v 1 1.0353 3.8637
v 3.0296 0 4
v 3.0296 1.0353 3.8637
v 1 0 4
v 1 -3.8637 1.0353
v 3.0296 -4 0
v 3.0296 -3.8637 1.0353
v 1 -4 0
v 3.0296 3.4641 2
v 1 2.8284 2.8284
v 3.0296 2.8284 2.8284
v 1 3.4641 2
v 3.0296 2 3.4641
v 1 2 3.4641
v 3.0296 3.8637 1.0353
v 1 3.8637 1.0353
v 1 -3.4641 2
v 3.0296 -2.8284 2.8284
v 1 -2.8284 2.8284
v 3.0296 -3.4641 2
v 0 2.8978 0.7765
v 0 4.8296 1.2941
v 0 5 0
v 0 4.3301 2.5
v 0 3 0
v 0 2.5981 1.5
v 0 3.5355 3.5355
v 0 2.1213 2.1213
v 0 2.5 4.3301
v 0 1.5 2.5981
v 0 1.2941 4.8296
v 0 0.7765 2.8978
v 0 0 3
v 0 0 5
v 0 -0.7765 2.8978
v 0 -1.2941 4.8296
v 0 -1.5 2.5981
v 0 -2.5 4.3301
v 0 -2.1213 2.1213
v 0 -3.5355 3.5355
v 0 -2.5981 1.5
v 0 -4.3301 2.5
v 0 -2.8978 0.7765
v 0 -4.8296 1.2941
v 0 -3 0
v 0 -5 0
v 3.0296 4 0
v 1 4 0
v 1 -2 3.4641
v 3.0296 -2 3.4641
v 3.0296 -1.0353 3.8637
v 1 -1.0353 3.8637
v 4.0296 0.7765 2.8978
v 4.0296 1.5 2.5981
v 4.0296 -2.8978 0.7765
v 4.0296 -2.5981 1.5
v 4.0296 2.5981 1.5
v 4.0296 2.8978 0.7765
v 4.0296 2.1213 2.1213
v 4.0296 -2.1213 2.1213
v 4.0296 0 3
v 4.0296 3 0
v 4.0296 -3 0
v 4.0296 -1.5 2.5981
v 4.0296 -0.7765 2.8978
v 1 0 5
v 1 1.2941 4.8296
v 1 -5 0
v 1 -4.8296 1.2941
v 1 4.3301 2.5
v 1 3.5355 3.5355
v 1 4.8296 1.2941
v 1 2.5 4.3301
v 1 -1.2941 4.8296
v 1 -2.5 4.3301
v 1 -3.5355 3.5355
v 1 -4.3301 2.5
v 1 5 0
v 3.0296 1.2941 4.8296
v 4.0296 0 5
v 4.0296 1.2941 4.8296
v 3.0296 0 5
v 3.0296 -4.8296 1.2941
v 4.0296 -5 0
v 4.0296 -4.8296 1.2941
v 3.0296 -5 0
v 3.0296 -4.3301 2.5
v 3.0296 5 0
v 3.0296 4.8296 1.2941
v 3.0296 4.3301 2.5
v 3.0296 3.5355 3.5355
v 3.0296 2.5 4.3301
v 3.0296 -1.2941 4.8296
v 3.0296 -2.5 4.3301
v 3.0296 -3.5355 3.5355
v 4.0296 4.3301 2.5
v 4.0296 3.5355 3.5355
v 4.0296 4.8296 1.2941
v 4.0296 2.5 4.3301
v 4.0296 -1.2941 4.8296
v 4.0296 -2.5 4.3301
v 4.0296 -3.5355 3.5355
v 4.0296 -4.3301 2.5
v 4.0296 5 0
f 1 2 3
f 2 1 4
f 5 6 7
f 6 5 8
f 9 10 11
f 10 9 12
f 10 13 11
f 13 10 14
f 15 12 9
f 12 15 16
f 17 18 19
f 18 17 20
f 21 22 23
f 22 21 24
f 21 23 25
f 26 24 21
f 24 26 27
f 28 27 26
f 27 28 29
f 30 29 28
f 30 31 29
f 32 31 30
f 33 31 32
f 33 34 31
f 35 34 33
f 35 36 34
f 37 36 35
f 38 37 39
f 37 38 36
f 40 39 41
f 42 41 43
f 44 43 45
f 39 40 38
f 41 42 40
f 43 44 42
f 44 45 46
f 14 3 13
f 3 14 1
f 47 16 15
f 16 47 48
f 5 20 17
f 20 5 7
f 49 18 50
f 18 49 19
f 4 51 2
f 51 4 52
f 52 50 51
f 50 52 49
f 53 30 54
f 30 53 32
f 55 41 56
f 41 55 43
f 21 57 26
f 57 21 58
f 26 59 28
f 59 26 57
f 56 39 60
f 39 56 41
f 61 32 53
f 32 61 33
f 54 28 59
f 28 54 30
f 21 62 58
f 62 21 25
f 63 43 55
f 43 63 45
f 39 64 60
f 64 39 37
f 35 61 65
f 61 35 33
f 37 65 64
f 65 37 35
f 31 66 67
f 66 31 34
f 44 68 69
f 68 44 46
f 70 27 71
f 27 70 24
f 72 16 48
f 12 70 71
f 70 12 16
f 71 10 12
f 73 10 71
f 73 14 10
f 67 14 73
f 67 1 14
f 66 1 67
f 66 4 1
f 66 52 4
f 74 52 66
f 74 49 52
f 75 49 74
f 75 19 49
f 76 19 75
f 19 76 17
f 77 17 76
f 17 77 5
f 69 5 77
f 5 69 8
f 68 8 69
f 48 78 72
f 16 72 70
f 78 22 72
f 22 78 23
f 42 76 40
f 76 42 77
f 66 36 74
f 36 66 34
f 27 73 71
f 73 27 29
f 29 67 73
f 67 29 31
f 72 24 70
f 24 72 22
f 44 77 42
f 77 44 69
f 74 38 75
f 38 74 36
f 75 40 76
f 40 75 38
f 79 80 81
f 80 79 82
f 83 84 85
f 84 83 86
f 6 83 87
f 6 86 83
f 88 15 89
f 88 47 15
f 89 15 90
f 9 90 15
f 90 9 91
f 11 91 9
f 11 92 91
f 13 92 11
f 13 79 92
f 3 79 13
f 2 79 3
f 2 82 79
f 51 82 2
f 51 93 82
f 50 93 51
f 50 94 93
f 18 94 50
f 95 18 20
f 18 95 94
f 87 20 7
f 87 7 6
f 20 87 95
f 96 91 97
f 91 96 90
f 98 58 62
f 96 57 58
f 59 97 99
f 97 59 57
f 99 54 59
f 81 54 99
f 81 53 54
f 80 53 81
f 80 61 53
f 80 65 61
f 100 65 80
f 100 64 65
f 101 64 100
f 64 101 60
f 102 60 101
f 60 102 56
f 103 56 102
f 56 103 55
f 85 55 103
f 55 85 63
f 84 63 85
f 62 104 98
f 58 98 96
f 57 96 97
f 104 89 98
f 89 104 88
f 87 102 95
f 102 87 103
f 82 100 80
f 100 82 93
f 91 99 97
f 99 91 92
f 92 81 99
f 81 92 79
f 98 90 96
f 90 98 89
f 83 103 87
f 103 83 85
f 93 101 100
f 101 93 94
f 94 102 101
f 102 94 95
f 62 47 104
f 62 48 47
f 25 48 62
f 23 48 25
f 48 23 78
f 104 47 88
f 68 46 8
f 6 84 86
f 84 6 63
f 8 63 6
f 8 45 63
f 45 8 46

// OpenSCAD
// file: ../build_environments.scad
// build_environments.scad: modules to build level sections
//

module pool(diameter=10.0, wall_height=2.0, step_width=3.0, connections=[])
{
    difference() {
        union() {
        difference() {
            cylinder(h=0.5,r1=diameter+step_width,r2=diameter+step_width,$fn=48);
            translate([0,0,-0.1])
                cylinder(h=0.7,r1=diameter,r2=diameter,$fn=48);
        }
        difference() {
            cylinder(h=wall_height,r1=diameter+step_width+1.0,r2=diameter+step_width+1.0,$fn=48);
            translate([0,0,-0.1])
                cylinder(h=wall_height+0.2,r1=diameter+step_width,r2=diameter+step_width,$fn=48);
        }
        }
    
        for (c = connections)
        {
            rotate([0,90,0]) {
                angle = atan2(c[1],c[0]);
                rotate([-angle,0,0]) {
                    cylinder(h=diameter+5.0,r1=c[2],r2=c[2],$fn=48);
                }
            }
        }
    }
}

module straight(length=10.0, width=2.0, dy1=0.0, dy2=0.0, dz=0.0)
{
    dims = [0, 0, 0, 0, 0, (dz/length)];
    matrix = [
        [ 1, dims[0], dims[1], 0 ],
        [ dims[2], 1, dims[4], 0 ],
        [ dims[5], dims[3], 1, 0 ],
        [ 0, 0, 0, 1 ]
    ];
    multmatrix(matrix)
    difference() {
        translate([dy1,0,0])
        union() {
            rotate([0,90,0]) {
                difference() {
                    cylinder(h=(length-dy1-dy2),r1=width+1.0,r2=width+1.0,$fn=24);
                    translate([0,0,-0.1])
                        cylinder(h=(length-dy1-dy2+0.2),r1=width,r2=width,$fn=24);
                }
                difference() {
                    cylinder(h=1.0,r1=width+2.0,r2=width+2.0,$fn=24);
                    translate([0,0,-0.1])
                        cylinder(h=1.2,r1=width,r2=width,$fn=24);
                }
                translate([0,0,(length-dy1-dy2)-1.0]) {
                    difference() {
                        cylinder(h=1.0,r1=width+2.0,r2=width+2.0,$fn=24);
                        translate([0,0,-0.1])
                            cylinder(h=1.2,r1=width,r2=width,$fn=24);
                    }
                }
            }
        }
        translate([0,0,-(2*width+4.0)/2])
            cube([3*length,3*length,2*width+4.0],center=true);
    }
}

module curve(p0=[0,0], center=[0,0], dir=1, angle=0.0, width=2.0)
{
    radius = sqrt((p0[0]-center[0])*(p0[0]-center[0]) + (p0[1]-center[1])*(p0[1]-center[1]));
    if (dir == 0) {
        difference() {
            rotate([0,0,-90])
            difference() {
                rotate_extrude(angle = angle, convexity = 10, $fn=32)
                    translate([radius, 0, 0])
                        circle(r = width+1.0,$fn=24);
                rotate([0,0,-1.0])
                    rotate_extrude(angle = angle+2.0, convexity = 10, $fn=32)
                        translate([radius, 0, 0])
                            circle(r = width,$fn=24);
            }
            translate([0,0,-(2*width+4.0)/2])
                cube([5*radius,5*radius,2*width+4.0],center=true);
        }
    }
    else {
        difference() {
            rotate([0,0,90])
            difference() {
                rotate_extrude(angle = -angle, convexity = 10, $fn=32)
                    translate([radius, 0, 0])
                        circle(r = width+1.0,$fn=24);
                rotate([0,0,1.0])
                    rotate_extrude(angle = -angle-2.0, convexity = 10, $fn=32)
                        translate([radius, 0, 0])
                            circle(r = width,$fn=24);
            }
            translate([0,0,-(2*width+4.0)/2])
                cube([5*radius,5*radius,2*width+4.0],center=true);
        }
    }

}

// test pool
//pool(diameter=12.0000, wall_height=3.0000, step_width=3.0000, connections=[[0.0000,-26.0000,2.0000], [23.6074,0.0000,2.0000]]);

// test straight, slope
//straight(length=26.0000, width=2.0000, dy1=11.8322, dy2=6.7082, dz=0.0000);
//straight(length=29.1549, width=12.0000, dy1=0.0000, dy2=0.0000, dz=-15.0000);

// test curve
//curve(p0=[23.6074, 0.0000], center=[23.6074, 5.0000], dir=0, angle=60.1011, width=2.0000);
//curve(p0=[33.6426, 12.4219], center=[37.9771, 9.9295], dir=1, angle=120.4627, width=2.0000);
// main file
use <../build_environments.scad>;
straight(length=4.0296, width=3.0000, dy1=0.0000, dy2=0.0000, dz=0.0000);
